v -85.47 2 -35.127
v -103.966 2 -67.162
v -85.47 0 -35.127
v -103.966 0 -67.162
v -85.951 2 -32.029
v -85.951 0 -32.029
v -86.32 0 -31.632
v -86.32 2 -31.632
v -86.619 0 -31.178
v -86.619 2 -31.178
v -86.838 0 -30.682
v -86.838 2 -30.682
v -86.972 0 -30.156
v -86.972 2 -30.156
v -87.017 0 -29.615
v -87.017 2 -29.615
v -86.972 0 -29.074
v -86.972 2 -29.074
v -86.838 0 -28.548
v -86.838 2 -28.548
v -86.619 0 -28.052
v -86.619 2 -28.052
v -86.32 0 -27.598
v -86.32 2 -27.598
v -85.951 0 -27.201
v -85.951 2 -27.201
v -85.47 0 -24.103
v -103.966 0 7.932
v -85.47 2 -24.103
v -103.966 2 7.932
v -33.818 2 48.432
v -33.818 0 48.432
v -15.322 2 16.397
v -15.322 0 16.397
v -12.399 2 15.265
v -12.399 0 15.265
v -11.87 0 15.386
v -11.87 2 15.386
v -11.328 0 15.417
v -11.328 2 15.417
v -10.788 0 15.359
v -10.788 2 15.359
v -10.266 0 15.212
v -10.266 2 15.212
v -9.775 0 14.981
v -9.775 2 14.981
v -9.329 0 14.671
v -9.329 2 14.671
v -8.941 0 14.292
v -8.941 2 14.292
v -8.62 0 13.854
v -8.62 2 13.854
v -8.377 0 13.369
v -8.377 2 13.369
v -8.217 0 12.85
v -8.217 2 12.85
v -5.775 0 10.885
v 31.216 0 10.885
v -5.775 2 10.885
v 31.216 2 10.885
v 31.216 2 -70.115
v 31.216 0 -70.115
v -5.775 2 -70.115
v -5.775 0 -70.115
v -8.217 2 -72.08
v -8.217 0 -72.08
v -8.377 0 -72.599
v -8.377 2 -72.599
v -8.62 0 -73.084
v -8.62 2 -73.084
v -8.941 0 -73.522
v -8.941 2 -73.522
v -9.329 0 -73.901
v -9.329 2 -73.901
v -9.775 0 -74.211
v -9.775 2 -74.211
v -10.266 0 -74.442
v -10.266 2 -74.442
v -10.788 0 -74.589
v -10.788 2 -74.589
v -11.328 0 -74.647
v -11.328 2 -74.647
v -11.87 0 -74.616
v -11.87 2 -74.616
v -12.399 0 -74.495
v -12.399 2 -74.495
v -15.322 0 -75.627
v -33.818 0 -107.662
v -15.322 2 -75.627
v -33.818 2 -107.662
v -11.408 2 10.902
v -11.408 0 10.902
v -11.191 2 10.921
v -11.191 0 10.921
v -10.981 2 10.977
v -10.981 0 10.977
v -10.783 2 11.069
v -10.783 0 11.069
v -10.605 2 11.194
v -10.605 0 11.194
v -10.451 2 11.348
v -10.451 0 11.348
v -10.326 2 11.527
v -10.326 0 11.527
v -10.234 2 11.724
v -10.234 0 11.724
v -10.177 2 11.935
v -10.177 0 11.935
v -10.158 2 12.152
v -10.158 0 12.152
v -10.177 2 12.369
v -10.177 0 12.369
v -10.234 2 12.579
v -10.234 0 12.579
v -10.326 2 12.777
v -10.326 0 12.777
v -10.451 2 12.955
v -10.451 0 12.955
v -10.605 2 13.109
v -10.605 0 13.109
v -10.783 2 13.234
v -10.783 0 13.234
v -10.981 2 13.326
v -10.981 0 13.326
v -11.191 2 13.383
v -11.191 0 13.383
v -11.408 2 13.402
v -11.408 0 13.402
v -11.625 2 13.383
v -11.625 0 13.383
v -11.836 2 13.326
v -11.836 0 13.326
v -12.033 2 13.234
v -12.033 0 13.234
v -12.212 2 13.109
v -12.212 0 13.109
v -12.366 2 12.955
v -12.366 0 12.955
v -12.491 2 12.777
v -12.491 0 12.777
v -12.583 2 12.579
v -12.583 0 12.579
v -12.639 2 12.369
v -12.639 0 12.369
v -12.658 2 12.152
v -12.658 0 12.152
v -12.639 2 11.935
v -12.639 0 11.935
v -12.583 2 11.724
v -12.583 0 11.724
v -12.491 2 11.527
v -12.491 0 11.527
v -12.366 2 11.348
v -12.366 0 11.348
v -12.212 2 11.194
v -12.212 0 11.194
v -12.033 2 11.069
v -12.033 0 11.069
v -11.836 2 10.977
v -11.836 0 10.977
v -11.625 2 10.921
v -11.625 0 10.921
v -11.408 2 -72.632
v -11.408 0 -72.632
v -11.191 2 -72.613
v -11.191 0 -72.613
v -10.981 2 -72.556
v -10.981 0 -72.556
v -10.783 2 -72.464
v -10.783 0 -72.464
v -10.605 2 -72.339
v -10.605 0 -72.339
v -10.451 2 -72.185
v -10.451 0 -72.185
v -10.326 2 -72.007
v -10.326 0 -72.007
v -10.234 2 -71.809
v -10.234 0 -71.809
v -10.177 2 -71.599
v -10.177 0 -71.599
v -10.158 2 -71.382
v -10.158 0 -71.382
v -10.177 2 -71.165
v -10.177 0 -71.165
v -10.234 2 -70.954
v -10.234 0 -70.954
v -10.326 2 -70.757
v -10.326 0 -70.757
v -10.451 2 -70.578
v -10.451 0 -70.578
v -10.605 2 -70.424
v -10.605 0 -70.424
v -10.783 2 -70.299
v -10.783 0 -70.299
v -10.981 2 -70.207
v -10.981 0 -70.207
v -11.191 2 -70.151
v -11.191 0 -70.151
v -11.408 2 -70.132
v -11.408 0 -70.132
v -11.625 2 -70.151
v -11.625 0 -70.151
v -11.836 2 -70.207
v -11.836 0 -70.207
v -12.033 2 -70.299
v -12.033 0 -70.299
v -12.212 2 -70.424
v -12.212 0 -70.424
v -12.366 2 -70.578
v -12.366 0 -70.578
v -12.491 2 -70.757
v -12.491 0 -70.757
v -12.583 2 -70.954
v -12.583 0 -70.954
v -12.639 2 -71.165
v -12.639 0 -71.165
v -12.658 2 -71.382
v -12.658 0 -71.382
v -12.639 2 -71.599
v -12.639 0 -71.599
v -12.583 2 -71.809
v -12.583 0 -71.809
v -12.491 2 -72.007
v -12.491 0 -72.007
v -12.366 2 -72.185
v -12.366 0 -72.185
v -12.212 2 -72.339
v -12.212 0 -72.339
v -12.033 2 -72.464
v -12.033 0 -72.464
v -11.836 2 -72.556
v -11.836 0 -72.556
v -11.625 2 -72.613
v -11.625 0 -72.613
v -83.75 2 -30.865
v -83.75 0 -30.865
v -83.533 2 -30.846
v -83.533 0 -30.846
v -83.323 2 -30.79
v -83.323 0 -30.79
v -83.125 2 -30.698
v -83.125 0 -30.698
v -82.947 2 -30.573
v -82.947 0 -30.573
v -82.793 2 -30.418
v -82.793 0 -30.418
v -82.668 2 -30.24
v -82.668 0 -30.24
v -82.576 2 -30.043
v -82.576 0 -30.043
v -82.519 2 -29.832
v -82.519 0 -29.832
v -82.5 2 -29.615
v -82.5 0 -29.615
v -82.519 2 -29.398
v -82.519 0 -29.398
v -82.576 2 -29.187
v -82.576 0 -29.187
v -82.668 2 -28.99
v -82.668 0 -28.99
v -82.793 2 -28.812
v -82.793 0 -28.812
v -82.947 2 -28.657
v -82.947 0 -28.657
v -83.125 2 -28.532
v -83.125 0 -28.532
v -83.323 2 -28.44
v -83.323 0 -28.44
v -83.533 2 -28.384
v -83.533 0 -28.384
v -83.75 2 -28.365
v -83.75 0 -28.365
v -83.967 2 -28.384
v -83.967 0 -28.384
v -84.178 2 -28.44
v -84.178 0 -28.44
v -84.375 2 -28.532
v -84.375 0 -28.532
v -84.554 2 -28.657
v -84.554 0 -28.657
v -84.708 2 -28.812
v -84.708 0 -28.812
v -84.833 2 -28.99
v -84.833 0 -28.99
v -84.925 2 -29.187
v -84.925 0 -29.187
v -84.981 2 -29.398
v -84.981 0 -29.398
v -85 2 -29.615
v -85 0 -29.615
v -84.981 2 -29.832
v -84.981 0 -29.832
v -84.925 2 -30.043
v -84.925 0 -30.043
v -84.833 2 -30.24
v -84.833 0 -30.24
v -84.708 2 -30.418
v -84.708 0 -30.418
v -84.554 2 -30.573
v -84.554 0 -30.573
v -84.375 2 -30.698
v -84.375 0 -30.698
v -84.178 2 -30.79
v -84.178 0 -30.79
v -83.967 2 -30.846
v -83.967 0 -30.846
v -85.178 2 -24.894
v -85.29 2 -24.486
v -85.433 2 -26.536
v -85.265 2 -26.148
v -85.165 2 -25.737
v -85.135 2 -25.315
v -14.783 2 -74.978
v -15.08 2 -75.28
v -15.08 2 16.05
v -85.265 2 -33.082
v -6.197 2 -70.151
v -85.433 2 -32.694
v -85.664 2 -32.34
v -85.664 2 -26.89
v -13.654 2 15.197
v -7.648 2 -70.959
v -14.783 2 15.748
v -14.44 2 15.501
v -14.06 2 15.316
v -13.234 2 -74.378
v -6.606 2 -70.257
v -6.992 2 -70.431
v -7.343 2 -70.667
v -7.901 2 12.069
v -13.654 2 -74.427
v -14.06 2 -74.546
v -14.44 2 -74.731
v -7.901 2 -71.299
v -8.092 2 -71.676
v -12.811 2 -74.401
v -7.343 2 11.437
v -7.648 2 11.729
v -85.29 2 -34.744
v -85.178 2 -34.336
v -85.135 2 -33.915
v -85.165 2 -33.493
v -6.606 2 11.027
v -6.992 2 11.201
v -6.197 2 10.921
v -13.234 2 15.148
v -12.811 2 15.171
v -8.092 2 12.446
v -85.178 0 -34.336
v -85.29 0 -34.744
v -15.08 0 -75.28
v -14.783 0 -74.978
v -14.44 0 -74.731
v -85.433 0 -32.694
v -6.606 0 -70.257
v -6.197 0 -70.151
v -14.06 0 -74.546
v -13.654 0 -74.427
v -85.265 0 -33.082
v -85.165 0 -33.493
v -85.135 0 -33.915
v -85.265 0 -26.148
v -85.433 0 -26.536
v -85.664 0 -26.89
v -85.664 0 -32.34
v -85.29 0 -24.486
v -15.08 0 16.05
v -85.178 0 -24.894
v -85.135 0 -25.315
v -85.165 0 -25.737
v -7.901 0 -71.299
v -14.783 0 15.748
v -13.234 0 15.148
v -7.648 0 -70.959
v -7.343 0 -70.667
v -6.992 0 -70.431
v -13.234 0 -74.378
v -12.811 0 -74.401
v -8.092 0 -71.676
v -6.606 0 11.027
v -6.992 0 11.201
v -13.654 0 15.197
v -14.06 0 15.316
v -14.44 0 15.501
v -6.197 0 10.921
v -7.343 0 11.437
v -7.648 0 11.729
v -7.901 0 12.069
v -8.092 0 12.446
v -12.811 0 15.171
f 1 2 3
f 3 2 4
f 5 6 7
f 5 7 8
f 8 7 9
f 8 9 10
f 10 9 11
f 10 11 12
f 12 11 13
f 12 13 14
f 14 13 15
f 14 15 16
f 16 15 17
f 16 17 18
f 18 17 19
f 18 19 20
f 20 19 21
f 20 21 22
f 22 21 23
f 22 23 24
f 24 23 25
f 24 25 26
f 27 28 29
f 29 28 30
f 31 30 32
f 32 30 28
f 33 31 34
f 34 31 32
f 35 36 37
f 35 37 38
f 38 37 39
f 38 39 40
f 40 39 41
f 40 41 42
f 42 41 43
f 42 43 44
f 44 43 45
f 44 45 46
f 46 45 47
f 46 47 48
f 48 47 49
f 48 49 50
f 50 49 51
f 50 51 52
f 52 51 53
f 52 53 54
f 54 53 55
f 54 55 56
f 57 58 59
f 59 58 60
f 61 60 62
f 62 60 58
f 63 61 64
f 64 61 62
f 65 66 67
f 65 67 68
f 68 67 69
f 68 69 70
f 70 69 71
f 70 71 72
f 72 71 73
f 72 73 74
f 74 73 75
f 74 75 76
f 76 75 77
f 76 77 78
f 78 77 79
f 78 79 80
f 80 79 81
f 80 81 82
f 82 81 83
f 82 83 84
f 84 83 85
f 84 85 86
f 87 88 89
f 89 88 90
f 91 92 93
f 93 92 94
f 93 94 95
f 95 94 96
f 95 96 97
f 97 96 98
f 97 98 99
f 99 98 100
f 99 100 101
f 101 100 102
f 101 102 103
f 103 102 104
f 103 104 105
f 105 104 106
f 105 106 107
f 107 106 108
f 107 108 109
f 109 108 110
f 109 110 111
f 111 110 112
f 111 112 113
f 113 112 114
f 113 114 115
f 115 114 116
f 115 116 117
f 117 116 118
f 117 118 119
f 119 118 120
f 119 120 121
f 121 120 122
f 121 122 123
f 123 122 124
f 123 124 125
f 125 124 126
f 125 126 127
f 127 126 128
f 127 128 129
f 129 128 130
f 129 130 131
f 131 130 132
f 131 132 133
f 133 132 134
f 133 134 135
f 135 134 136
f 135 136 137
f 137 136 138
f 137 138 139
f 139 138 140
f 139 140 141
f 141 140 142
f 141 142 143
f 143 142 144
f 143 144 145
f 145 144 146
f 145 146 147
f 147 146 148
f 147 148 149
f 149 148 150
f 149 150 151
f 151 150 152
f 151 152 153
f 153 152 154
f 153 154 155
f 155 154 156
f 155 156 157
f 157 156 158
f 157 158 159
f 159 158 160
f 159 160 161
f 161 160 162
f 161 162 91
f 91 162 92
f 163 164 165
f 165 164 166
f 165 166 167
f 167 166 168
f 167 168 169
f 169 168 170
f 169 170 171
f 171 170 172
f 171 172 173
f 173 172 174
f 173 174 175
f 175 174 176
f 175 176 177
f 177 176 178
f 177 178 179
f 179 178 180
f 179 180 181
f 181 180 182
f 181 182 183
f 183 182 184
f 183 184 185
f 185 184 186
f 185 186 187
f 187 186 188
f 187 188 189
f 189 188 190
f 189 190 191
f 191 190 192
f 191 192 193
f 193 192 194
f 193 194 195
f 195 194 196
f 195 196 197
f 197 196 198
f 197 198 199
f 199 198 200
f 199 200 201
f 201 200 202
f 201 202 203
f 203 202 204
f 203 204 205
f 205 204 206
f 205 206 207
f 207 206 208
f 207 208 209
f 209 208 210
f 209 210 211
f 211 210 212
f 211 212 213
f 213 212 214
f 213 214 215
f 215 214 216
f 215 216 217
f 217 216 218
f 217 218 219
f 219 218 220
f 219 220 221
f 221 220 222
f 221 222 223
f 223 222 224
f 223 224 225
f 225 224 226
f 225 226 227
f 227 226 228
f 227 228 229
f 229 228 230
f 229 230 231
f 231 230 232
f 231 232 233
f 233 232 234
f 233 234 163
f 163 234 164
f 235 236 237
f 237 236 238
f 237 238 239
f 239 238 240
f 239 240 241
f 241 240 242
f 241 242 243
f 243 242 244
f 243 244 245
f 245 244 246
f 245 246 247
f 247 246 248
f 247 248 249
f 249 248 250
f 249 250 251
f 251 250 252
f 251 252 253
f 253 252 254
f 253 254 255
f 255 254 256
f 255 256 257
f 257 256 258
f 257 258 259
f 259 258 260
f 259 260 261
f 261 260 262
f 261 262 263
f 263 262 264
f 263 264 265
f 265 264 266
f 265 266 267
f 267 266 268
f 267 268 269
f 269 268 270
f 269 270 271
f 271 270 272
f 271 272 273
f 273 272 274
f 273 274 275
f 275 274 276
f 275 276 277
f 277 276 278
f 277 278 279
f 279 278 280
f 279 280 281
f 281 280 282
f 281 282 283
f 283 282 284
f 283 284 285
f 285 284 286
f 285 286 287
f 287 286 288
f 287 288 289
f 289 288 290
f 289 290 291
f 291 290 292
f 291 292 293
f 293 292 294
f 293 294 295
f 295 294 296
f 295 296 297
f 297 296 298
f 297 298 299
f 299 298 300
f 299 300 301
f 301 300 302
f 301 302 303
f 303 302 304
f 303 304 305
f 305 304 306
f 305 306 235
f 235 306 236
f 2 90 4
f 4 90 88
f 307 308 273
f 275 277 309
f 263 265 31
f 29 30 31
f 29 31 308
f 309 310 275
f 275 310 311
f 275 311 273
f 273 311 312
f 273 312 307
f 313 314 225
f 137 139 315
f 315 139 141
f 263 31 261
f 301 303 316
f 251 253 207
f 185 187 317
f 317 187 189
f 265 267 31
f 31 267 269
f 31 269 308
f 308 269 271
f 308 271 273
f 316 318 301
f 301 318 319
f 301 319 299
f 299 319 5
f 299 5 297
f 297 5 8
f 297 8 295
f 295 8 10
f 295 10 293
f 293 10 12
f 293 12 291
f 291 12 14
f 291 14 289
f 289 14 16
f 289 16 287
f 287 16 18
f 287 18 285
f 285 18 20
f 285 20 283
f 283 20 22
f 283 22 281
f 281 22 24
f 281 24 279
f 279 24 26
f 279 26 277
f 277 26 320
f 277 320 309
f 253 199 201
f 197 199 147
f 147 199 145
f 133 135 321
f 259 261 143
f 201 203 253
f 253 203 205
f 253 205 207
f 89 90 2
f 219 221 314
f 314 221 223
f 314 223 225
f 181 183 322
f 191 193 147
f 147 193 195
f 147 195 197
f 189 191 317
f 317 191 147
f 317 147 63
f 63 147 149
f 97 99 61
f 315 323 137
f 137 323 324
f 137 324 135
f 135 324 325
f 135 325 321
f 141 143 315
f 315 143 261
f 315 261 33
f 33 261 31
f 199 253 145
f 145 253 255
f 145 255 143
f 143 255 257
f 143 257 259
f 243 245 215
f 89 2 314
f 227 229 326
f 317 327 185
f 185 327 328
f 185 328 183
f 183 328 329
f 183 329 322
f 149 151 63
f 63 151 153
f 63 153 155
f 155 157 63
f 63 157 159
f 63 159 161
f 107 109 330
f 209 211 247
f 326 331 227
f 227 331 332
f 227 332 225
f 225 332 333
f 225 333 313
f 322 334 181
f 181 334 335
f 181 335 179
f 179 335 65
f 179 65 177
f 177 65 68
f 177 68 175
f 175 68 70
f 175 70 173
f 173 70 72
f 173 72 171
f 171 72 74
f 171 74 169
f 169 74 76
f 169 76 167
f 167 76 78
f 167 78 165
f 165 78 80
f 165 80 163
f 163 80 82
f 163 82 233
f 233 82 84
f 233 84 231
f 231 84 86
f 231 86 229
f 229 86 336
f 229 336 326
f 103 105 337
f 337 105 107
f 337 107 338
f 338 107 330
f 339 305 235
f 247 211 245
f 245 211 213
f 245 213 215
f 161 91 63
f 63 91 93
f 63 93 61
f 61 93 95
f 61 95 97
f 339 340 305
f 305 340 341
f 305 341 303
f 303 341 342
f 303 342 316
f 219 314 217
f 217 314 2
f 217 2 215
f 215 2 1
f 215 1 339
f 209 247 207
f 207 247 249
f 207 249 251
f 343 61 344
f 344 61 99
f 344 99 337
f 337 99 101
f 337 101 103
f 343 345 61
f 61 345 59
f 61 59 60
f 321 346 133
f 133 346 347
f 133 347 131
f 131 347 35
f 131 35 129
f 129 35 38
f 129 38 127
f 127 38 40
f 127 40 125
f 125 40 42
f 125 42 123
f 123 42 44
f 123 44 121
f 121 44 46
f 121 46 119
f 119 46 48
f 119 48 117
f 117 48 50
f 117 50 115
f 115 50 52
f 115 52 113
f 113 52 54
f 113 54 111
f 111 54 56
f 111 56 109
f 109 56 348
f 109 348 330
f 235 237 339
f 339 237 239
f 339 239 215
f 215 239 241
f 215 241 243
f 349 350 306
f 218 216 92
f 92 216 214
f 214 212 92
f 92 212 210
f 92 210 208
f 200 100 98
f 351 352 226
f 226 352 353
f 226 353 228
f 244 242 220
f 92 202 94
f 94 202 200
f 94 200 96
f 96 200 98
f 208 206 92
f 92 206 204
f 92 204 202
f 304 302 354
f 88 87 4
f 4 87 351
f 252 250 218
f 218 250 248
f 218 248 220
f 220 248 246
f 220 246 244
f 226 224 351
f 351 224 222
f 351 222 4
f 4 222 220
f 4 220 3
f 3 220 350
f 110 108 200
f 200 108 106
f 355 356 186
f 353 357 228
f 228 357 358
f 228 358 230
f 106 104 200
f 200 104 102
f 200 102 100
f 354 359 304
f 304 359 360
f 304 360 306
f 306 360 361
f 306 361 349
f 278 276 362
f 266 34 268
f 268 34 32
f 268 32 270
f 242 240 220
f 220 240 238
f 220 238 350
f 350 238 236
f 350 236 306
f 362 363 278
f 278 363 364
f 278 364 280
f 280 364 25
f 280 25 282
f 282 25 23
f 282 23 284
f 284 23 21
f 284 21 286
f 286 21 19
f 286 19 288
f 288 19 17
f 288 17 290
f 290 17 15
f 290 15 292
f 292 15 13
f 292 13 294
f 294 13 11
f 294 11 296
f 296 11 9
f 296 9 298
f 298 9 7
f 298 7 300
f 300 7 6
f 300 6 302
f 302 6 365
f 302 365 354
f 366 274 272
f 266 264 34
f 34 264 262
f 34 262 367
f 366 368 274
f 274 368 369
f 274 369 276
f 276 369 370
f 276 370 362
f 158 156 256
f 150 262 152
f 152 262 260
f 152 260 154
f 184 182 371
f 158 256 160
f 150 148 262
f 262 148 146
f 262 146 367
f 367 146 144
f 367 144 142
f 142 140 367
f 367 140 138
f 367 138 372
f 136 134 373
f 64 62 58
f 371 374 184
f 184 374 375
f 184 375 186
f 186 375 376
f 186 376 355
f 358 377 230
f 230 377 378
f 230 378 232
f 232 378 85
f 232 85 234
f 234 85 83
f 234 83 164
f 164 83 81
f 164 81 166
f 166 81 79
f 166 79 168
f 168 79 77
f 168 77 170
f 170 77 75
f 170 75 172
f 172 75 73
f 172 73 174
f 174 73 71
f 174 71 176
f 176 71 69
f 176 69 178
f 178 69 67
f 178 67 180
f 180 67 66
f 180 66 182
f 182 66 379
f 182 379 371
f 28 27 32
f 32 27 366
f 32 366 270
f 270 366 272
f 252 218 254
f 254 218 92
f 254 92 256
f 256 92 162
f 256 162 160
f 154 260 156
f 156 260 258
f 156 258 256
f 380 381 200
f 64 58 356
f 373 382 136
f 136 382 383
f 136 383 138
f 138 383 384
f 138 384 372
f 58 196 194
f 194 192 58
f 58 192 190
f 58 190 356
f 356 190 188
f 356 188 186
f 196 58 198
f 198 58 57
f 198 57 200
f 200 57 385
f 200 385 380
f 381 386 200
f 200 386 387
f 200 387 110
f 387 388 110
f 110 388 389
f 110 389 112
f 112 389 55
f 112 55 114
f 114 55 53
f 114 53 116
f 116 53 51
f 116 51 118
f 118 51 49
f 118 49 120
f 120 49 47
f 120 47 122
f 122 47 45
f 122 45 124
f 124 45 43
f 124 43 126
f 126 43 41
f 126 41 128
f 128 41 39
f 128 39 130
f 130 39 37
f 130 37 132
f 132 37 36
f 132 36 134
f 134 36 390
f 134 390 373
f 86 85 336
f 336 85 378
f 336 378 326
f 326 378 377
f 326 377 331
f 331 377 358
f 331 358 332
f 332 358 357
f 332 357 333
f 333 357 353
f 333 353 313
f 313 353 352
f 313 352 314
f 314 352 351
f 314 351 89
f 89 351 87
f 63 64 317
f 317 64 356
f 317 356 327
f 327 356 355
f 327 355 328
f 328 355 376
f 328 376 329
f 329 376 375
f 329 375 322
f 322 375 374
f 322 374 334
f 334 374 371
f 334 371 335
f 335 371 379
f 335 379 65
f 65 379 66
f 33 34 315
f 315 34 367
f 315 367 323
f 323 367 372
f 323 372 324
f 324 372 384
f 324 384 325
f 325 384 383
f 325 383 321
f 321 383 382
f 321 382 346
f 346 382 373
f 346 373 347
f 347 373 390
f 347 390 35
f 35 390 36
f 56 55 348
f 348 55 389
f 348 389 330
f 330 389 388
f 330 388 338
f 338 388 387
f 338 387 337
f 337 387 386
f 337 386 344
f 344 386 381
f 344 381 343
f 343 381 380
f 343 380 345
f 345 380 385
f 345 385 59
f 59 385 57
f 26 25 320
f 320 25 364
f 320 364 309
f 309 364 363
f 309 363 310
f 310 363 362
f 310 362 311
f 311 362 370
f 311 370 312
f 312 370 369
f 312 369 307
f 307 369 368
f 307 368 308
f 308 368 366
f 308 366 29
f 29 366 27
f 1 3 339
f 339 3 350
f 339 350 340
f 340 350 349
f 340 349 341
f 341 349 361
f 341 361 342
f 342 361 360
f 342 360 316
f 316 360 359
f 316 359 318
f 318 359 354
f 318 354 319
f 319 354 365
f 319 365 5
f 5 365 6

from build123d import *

# Parameters (mm, degrees)
SKETCH1_R           = 1.25
BOSS_EXTRUDE1_DEPTH = 2
FILLET1_R           = 2.5


with BuildPart() as part:
    # Sketch1 → Boss-Extrude1 (new body)
    with BuildSketch(Plane(origin=(0, 0, 0), x_dir=(1, 0, 0), z_dir=(0, 1, 0))):
        with BuildLine():
            Line((-103.965757813, 67.162425071), (-33.817700106, 107.662425071))
            Line((-33.817700106, 107.662425071), (-14.010882201, 73.356010123))
            ThreePointArc((-14.010882201, 73.356010123), (-9.775048525, 74.210673935), (-8.39729226, 70.115002459))
            Line((-8.39729226, 70.115002459), (31.216343551, 70.115002459))
            Line((31.216343551, 70.115002459), (31.216343551, -10.884997541))
            Line((31.216343551, -10.884997541), (-8.39729226, -10.884997541))
            ThreePointArc((-8.39729226, -10.884997541), (-9.775048525, -14.980669016), (-14.010882201, -14.126005204))
            Line((-14.010882201, -14.126005204), (-33.817700106, -48.432420153))
            Line((-33.817700106, -48.432420153), (-103.965757813, -7.932420153))
            Line((-103.965757813, -7.932420153), (-84.158939907, 26.373994796))
            ThreePointArc((-84.158939907, 26.373994796), (-87.017017318, 29.615002459), (-84.158939907, 32.856010123))
            Line((-84.158939907, 32.856010123), (-103.965757813, 67.162425071))
        make_face()
        with Locations(Location((-83.75035682, 29.615002459, 0), (0, 0, 270))):
            Circle(SKETCH1_R, mode=Mode.SUBTRACT)
        with Locations(Location((-11.408378774, 71.381662958, 0), (0, 0, 270))):
            Circle(SKETCH1_R, mode=Mode.SUBTRACT)
        with Locations(Location((-11.408378774, -12.151658039, 0), (0, 0, 270))):
            Circle(SKETCH1_R, mode=Mode.SUBTRACT)
    extrude(amount=BOSS_EXTRUDE1_DEPTH)

    # Fillet1
    fillet1_edges = [part.edges().sort_by_distance(p)[0] for p in [
        (-14.010882201, 1, -73.356010123),
        (-8.39729226, 1, -70.115002459),
        (-8.39729226, 1, 10.884997541),
        (-14.010882201, 1, 14.126005204),
        (-84.158939907, 1, -26.373994796),
        (-84.158939907, 1, -32.856010123),
    ]]
    fillet(fillet1_edges, radius=FILLET1_R)


solid = part.part
